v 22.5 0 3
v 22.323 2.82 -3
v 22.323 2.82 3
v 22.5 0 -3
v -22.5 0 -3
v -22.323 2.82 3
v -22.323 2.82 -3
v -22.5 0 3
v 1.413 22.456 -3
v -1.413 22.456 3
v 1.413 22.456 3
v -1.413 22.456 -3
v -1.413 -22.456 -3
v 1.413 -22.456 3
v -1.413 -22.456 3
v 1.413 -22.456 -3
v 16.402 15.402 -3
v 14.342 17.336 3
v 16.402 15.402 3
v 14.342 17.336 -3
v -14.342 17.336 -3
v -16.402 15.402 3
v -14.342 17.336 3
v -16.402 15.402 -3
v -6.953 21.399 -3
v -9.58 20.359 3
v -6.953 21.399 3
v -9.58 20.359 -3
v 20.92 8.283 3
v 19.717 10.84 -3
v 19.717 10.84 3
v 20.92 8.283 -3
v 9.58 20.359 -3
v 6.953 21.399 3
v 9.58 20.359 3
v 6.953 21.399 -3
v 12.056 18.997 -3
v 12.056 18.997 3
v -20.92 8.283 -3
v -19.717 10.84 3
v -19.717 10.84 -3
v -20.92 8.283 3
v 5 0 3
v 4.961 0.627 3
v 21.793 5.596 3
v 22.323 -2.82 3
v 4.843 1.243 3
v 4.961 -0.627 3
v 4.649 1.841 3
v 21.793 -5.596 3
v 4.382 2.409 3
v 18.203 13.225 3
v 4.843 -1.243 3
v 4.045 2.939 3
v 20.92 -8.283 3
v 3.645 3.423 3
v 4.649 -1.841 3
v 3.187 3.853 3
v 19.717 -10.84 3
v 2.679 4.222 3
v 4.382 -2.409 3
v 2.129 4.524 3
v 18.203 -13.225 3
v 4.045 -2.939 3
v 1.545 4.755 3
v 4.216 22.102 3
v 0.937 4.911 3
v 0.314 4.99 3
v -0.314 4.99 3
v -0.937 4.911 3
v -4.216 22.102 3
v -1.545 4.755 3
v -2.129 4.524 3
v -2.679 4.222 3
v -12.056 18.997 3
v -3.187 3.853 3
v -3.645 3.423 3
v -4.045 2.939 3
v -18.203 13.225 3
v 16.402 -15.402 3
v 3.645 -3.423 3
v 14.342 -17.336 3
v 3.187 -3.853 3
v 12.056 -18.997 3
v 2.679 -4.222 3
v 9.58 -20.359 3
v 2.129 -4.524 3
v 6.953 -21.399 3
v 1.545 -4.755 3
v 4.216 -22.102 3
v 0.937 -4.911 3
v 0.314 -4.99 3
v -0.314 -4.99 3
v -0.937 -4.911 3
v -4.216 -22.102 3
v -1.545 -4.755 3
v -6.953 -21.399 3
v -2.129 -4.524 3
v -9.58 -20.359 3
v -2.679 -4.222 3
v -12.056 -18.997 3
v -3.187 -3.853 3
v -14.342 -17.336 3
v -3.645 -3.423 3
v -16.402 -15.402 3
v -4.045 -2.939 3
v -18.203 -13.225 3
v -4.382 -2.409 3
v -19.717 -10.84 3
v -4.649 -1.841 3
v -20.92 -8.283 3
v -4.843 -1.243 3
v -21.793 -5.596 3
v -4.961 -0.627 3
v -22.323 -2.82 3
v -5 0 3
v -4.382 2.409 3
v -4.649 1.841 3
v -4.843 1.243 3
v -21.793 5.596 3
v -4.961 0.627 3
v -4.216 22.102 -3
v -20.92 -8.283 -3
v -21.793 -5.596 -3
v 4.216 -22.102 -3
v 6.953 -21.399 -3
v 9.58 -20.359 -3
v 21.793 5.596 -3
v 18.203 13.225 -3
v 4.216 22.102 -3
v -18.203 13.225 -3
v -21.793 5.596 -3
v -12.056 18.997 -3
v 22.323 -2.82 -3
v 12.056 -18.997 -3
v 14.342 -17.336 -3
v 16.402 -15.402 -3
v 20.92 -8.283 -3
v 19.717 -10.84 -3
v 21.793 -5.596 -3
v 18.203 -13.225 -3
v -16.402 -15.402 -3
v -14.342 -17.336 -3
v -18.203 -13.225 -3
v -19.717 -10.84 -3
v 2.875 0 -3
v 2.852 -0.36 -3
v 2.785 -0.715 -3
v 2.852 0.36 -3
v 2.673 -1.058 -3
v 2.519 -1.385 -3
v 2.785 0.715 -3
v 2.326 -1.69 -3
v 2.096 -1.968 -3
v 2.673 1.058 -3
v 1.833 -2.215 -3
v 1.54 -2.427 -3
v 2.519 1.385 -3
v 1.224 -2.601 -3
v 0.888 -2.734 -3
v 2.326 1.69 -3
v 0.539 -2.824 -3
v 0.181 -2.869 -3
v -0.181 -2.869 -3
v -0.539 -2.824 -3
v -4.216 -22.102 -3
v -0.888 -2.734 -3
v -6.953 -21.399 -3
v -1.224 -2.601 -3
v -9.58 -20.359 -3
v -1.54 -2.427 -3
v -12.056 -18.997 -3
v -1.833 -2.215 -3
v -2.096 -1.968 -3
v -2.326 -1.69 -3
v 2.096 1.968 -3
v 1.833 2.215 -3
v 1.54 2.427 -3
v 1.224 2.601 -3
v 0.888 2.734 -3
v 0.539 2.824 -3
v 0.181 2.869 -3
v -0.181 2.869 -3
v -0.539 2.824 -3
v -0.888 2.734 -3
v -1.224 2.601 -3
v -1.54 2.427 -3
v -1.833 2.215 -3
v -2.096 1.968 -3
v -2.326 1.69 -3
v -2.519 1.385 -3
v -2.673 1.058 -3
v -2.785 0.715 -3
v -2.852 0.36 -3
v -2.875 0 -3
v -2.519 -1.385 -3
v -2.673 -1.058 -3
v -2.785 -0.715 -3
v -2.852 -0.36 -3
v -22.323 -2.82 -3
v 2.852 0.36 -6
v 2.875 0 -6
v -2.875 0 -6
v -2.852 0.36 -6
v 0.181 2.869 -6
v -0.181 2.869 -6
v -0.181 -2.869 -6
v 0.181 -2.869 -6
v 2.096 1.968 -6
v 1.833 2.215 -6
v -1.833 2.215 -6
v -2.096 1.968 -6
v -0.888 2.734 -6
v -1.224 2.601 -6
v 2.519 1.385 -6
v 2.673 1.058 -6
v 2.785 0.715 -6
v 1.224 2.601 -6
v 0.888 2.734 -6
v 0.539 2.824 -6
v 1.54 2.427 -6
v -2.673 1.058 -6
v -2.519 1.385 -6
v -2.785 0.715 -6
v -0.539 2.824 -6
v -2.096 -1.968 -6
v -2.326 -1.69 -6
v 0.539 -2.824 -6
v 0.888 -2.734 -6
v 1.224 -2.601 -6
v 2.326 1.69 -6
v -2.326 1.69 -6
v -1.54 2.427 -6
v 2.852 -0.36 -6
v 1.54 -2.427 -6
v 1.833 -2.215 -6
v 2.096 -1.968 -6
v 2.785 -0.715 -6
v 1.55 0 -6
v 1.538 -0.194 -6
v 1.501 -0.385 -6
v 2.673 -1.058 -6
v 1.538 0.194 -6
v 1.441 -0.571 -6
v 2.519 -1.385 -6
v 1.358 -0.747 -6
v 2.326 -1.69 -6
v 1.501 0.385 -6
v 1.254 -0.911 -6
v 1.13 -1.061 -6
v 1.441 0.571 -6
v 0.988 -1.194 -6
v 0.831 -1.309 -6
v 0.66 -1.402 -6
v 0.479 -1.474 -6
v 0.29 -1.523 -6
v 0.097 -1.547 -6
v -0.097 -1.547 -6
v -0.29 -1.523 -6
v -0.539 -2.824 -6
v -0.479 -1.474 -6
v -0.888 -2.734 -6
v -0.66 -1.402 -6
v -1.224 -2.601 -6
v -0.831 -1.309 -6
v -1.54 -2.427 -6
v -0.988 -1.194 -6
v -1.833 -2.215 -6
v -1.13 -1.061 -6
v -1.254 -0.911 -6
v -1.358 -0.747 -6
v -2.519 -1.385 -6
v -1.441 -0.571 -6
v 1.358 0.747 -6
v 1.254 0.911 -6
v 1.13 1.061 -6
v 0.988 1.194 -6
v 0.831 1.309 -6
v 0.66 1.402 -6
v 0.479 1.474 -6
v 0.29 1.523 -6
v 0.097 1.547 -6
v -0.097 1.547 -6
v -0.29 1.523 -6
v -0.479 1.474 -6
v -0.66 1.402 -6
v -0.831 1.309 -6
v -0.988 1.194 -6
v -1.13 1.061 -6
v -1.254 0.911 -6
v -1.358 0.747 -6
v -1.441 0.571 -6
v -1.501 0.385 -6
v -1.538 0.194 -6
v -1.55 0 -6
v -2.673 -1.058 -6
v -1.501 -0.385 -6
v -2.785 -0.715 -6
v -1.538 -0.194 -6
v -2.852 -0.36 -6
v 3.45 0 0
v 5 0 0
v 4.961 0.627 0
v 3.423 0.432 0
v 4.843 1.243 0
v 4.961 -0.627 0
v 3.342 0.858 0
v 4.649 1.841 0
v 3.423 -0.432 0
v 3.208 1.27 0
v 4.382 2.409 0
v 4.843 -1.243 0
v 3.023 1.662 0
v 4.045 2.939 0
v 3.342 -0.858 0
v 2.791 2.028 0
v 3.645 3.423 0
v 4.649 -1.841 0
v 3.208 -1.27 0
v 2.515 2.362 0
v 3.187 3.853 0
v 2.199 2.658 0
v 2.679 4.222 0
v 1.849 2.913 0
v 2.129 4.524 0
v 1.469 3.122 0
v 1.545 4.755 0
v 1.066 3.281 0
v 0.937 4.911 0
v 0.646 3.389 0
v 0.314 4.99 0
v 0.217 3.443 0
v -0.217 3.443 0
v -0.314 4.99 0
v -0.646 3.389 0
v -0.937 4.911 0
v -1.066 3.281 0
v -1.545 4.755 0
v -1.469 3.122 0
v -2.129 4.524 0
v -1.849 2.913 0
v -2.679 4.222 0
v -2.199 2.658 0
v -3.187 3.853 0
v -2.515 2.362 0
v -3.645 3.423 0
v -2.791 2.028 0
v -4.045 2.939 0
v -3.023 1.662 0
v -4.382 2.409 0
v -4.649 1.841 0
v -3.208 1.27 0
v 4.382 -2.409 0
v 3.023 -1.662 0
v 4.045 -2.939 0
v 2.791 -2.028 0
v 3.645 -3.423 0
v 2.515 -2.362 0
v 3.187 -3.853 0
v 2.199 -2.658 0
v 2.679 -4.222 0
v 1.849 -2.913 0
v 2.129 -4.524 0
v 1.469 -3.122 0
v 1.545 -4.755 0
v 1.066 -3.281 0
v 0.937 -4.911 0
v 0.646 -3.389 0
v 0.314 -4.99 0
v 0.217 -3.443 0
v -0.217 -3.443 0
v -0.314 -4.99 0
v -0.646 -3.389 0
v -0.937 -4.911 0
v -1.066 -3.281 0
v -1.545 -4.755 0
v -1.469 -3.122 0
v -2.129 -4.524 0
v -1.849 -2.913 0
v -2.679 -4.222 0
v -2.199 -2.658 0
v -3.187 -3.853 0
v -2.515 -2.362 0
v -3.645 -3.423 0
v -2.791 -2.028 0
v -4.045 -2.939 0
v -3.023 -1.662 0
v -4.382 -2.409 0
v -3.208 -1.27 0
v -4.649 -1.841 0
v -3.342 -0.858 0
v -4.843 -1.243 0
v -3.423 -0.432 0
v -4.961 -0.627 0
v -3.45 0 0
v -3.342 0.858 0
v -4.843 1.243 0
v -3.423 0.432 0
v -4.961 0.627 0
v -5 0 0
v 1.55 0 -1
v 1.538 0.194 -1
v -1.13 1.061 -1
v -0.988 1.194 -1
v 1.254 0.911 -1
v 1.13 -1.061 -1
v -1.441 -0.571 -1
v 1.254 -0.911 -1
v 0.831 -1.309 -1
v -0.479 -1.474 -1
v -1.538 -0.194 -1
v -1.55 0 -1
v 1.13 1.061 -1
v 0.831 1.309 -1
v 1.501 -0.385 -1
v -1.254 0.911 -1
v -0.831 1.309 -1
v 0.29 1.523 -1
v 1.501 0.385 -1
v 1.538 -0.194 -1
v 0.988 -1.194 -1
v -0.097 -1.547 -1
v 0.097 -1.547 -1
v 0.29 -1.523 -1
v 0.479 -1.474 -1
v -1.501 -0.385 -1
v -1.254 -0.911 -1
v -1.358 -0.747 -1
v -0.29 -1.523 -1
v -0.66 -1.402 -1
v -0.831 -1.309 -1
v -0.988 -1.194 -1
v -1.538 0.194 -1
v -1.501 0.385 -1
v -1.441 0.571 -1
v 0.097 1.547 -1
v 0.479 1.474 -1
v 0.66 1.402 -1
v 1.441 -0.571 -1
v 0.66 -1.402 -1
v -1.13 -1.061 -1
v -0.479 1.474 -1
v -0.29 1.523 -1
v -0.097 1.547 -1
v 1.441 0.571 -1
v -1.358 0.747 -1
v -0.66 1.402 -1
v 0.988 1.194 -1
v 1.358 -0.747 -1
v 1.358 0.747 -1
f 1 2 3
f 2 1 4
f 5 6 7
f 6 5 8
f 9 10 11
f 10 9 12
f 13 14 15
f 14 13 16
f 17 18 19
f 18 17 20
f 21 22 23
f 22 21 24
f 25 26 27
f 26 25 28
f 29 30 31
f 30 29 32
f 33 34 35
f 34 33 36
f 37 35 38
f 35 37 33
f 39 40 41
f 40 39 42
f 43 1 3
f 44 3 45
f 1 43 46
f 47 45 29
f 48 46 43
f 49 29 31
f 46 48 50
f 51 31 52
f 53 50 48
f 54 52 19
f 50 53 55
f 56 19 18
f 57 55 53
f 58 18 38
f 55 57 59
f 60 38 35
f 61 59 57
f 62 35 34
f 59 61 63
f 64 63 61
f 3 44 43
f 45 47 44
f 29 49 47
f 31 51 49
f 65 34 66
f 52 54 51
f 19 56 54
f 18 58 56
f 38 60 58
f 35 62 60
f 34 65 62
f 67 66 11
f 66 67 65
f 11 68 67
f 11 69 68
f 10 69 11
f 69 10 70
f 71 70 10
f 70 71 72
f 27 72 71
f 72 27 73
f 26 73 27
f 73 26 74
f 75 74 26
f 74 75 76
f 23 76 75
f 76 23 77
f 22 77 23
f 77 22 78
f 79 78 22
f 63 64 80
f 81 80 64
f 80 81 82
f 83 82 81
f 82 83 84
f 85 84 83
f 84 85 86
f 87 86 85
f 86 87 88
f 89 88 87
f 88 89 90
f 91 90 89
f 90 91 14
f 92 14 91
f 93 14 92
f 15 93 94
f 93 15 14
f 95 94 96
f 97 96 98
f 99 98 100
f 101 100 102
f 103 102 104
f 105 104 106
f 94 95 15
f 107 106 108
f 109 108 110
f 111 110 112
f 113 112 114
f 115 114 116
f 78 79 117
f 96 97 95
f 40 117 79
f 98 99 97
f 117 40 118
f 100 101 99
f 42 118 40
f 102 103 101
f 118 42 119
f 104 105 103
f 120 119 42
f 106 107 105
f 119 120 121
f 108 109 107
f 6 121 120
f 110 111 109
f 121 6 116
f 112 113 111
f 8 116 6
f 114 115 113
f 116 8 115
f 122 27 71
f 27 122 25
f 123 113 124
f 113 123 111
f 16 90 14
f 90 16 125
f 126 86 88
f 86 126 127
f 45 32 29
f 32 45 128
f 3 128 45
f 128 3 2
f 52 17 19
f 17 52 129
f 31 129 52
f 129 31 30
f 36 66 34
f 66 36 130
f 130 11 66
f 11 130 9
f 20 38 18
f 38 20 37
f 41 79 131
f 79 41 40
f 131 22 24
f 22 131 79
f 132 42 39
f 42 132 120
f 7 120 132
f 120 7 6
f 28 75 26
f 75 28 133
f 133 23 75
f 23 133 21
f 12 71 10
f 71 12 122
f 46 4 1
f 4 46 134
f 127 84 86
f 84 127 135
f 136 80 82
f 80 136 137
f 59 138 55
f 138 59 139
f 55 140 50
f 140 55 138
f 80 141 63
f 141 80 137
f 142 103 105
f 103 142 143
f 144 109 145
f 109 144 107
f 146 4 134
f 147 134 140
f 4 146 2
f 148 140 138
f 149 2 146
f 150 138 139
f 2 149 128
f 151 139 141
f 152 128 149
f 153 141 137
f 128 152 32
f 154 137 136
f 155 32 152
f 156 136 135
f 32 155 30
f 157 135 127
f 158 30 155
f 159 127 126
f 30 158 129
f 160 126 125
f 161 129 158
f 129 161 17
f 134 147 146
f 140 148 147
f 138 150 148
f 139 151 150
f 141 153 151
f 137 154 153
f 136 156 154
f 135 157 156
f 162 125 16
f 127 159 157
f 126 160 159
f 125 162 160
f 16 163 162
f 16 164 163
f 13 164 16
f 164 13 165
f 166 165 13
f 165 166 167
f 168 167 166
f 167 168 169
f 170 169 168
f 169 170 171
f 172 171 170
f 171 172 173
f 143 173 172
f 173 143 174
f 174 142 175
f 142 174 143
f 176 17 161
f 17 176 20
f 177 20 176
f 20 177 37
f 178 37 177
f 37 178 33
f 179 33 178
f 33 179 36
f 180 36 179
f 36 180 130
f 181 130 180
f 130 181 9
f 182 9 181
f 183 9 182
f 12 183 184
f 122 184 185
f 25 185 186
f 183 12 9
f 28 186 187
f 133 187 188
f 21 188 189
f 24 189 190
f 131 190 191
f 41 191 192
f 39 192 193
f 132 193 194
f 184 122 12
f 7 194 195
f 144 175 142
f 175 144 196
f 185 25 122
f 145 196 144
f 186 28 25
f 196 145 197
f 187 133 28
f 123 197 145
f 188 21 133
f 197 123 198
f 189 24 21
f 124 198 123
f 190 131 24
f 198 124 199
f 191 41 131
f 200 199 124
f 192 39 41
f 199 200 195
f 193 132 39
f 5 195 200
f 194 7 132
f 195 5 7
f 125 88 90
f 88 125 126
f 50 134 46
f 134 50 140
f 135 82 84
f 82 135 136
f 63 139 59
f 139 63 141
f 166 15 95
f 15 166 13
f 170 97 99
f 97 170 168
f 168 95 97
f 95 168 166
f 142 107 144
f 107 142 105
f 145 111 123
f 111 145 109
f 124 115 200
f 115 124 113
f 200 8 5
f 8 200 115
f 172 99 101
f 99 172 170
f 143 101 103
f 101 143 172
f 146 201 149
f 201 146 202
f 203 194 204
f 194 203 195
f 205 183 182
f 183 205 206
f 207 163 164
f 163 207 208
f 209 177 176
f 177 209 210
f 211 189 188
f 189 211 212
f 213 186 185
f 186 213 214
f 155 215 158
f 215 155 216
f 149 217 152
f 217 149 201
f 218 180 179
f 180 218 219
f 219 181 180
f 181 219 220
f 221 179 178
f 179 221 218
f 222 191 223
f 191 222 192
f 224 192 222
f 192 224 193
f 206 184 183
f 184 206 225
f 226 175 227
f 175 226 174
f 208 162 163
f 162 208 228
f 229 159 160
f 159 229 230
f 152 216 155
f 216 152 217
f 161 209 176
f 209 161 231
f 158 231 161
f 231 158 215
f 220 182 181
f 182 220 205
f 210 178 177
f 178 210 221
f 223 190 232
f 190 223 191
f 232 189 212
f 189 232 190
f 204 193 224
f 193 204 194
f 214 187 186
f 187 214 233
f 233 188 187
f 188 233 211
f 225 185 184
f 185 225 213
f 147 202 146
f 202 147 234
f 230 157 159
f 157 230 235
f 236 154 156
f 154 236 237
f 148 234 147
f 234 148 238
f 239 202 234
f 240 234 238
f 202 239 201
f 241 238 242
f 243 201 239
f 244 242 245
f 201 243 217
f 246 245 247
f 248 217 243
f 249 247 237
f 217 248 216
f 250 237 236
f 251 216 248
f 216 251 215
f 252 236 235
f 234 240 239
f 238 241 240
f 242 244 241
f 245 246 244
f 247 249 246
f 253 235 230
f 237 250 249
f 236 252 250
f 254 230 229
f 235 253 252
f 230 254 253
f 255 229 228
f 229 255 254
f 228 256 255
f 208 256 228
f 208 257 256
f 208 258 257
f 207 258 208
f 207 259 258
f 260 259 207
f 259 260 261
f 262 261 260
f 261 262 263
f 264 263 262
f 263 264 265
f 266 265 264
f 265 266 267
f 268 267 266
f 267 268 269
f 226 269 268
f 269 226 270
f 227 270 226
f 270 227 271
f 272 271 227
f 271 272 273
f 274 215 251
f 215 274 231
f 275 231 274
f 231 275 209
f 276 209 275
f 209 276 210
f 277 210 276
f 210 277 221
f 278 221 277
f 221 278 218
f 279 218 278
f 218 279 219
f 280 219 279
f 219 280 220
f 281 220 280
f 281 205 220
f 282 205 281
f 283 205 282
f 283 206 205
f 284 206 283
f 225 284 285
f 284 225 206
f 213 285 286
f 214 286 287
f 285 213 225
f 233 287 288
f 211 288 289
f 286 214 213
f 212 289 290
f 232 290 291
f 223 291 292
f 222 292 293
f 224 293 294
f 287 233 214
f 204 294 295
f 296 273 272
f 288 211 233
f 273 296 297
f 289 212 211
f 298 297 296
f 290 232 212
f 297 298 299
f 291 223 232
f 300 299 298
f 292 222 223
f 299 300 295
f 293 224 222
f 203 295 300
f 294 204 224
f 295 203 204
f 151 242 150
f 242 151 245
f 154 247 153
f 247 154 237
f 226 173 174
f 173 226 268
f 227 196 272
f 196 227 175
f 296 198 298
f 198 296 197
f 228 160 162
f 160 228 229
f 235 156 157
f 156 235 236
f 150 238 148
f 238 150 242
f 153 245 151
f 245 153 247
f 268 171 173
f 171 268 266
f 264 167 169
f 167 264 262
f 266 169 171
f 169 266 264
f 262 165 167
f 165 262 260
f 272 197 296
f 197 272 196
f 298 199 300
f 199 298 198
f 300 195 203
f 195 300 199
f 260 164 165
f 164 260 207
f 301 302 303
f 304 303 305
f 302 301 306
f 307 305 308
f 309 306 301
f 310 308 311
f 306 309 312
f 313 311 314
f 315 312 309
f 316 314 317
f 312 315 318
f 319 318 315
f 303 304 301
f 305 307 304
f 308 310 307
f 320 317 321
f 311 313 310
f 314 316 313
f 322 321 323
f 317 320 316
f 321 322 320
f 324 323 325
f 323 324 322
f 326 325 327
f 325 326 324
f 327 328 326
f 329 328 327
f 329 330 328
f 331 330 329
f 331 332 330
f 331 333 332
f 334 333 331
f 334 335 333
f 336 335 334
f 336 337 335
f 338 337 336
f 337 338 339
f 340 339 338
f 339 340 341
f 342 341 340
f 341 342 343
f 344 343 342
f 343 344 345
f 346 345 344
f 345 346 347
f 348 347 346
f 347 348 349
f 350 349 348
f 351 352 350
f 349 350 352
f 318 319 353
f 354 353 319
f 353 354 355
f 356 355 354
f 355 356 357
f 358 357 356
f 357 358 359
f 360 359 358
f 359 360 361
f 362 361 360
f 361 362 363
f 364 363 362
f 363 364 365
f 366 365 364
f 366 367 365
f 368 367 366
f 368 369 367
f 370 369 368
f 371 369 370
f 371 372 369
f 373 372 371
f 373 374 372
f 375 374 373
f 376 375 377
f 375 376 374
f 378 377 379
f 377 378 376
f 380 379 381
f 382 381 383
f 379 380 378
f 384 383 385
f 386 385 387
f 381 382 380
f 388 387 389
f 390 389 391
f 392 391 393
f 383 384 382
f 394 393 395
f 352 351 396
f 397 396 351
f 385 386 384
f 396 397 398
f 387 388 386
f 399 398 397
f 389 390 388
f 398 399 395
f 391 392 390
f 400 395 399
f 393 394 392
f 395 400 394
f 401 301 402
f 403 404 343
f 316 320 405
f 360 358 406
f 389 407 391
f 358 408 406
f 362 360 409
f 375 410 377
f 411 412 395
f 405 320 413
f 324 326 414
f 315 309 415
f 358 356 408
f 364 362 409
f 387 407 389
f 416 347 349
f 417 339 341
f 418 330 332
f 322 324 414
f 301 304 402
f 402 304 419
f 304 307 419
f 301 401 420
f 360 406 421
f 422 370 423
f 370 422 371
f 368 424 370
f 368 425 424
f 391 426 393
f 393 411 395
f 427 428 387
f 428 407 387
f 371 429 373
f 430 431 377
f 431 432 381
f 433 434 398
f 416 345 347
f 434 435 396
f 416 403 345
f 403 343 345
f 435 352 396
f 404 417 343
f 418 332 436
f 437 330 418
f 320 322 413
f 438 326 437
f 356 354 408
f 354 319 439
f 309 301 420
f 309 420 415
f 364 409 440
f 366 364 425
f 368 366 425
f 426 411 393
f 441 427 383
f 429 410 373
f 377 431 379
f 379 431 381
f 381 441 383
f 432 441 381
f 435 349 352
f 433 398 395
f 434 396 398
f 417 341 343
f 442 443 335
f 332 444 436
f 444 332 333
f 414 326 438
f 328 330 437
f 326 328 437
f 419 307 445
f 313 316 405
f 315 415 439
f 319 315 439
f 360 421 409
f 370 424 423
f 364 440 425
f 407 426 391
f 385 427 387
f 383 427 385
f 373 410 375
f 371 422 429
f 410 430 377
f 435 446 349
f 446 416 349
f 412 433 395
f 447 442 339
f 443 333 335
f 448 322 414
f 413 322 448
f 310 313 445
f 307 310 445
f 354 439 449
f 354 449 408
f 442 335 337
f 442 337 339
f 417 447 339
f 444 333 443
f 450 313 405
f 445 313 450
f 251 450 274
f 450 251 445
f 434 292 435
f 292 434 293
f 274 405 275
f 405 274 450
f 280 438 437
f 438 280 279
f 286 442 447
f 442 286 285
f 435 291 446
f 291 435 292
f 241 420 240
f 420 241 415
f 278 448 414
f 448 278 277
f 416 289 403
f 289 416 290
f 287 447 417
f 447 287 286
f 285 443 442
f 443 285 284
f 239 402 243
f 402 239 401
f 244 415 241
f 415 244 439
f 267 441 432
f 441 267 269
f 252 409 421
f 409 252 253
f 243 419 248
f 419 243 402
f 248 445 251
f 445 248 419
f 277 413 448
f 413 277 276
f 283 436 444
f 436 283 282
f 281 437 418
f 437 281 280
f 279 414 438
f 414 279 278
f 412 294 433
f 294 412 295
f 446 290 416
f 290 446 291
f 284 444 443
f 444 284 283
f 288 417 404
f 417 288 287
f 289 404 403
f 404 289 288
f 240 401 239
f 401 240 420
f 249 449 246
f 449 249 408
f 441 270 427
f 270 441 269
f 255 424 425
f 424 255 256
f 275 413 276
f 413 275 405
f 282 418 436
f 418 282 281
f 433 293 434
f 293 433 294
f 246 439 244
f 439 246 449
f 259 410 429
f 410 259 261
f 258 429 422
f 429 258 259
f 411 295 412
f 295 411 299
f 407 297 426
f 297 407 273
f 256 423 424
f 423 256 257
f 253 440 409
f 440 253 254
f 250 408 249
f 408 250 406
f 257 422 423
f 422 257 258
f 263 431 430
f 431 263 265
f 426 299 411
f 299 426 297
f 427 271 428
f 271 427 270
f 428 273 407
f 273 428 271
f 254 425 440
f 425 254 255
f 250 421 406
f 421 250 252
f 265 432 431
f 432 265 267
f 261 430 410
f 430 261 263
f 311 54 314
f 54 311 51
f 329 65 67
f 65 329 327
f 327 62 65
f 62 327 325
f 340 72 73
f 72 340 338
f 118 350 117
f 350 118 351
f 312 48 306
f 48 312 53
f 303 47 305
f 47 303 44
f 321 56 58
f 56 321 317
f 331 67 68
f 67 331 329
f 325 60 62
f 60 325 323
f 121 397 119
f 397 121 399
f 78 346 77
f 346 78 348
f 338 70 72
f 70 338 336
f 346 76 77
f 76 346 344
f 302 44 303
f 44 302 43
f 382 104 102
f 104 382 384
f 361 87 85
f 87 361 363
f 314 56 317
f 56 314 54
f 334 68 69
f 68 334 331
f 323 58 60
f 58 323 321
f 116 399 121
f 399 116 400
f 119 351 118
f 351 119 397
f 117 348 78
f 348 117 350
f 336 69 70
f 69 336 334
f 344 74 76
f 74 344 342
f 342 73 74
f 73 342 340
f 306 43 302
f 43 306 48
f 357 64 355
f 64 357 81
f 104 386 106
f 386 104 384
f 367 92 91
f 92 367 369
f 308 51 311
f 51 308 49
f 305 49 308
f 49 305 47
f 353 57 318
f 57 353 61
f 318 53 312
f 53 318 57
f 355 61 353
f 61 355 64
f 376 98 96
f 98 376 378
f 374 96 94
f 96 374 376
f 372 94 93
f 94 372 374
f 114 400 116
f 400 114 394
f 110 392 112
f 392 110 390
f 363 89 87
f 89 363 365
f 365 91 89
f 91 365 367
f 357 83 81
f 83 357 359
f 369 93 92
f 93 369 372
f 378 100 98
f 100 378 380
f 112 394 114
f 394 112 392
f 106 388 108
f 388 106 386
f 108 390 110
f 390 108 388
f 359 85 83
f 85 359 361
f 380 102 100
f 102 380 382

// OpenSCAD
$fn = 50;

difference() {
	union() {
		translate(v = [0, 0, -3.0]) {
			cylinder(h = 6, r = 22.5);
		}
		#translate(v = [0, 0, -6.0]) {
			cylinder(h = 6, r = 2.875);
		}
	}
	union() {
		translate(v = [0, 0, 0]) {
			rotate(a = [0, 0, 0]) {
				difference() {
					union() {
						translate(v = [0, 0, -6.0]) {
							cylinder(h = 6, r = 1.25);
						}
						translate(v = [0, 0, -1.0]) {
							cylinder(h = 1.0, r1 = 1.55, r2 = 3.45);
						}
						translate(v = [0, 0, -6.0]) {
							cylinder(h = 6, r = 1.55);
						}
						translate(v = [0, 0, -6.0]) {
							cylinder(h = 6, r = 1.25);
						}
					}
					union();
				}
			}
		}
		#cylinder(h = 3, r = 5.0);
	}
}
